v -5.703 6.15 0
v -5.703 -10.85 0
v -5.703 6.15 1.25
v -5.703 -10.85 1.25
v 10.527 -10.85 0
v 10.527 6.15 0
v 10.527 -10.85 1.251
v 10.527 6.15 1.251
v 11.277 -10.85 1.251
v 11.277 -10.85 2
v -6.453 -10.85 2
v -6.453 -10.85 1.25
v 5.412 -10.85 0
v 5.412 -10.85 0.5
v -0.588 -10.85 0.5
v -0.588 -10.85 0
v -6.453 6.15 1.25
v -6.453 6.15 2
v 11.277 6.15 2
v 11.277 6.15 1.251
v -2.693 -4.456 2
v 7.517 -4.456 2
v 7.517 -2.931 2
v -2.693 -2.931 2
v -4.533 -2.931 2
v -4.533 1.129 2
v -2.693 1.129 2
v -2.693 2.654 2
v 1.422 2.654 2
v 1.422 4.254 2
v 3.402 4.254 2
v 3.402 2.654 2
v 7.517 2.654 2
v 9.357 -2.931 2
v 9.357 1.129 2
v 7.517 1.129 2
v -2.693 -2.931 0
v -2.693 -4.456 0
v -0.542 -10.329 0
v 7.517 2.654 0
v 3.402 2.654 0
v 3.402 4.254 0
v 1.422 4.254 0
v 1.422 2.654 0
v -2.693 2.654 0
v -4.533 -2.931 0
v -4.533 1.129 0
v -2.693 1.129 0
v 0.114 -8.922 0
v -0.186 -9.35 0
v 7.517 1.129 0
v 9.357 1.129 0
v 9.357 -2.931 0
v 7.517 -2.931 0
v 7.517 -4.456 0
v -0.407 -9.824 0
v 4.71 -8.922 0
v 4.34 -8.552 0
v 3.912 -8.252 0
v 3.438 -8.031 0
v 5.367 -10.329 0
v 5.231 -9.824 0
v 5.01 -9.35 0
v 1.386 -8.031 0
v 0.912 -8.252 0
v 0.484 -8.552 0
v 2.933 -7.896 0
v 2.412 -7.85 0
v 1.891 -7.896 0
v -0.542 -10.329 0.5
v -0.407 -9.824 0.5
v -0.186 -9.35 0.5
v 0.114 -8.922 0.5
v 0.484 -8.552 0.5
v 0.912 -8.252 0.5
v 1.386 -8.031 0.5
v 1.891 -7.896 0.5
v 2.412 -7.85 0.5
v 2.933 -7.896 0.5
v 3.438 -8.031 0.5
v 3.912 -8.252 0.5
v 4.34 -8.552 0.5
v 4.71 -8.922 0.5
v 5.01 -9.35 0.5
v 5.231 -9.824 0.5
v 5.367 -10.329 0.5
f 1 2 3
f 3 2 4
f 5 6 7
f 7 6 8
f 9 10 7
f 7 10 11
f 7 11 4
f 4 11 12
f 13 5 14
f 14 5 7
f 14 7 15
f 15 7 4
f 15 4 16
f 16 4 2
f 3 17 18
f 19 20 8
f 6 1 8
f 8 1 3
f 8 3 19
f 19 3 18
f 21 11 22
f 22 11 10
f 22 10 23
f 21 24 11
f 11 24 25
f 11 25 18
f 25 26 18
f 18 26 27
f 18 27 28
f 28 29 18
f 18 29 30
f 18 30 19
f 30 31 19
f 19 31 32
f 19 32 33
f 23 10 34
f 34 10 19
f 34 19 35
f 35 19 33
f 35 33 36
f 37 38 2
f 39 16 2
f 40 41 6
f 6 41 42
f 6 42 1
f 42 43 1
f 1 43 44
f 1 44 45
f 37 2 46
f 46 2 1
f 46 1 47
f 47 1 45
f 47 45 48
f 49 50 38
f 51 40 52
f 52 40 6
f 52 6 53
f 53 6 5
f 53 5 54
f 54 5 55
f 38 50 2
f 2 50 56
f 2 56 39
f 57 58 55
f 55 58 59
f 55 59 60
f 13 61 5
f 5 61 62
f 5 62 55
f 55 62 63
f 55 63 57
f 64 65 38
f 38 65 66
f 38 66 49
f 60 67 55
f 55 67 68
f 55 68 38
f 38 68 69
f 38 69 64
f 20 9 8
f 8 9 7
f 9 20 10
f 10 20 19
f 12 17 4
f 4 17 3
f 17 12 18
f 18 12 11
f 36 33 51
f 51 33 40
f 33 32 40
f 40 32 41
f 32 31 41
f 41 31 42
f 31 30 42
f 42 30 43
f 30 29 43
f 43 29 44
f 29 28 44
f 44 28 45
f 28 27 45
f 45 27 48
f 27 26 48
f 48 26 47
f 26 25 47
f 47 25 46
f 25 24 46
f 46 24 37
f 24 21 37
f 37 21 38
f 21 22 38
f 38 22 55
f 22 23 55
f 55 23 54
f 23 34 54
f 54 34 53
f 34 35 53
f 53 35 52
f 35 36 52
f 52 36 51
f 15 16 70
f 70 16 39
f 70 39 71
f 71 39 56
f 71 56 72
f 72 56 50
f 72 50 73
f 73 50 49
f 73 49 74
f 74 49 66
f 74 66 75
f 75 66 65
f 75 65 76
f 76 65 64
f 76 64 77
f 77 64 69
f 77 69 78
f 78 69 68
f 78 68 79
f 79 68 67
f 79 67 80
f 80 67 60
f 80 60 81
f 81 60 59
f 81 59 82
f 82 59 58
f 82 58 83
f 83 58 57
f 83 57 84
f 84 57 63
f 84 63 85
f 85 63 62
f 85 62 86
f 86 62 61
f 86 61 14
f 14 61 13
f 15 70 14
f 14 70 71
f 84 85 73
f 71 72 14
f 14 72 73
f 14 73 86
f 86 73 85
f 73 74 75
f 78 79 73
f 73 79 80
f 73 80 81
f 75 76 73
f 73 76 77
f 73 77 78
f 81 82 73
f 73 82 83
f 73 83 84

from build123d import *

# Parameters (mm, degrees)
SKETCH1_W           = 16.23
SKETCH1_H           = 17
BOSS_EXTRUDE1_DEPTH = 2
SKETCH2_W           = 0.749
SKETCH2_H           = 17
BOSS_EXTRUDE2_DEPTH = 0.75
SKETCH3_W           = 0.75
SKETCH3_H           = 17
BOSS_EXTRUDE4_DEPTH = 0.75
CUT_EXTRUDE1_DEPTH  = 16.776621323
CUT_EXTRUDE3_DEPTH  = 0.5


with BuildPart() as part:
    # Sketch1 → Boss-Extrude1 (new body)
    with BuildSketch(Plane.XY):
        with Locations((2.412127937, -2.350261097)):
            Rectangle(SKETCH1_W, SKETCH1_H)
    extrude(amount=BOSS_EXTRUDE1_DEPTH)

    # Sketch2 → Boss-Extrude2 (add)
    with BuildSketch(Plane(origin=(10.527127937, 0, 0), x_dir=(0, 0, -1), z_dir=(1, 0, 0))):
        with Locations((-1.6255, -2.350261097)):
            Rectangle(SKETCH2_W, SKETCH2_H)
    extrude(amount=BOSS_EXTRUDE2_DEPTH)

    # Sketch3 → Boss-Extrude4 (add)
    with BuildSketch(Plane.ZY.offset(5.702872063)):
        with Locations((1.625, -2.350261097)):
            Rectangle(SKETCH3_W, SKETCH3_H)
    extrude(amount=BOSS_EXTRUDE4_DEPTH)

    # Sketch4 → Cut-Extrude1 (cut, through all)
    with BuildSketch(Plane(origin=(0, 0, 0), x_dir=(-1, 0, 0), z_dir=(0, 0, -1))):
        Polygon((-7.517127937, 2.653975471), (-3.402127937, 2.653975471), (-3.402127937, 4.253975471), (-1.422127937, 4.253975471), (-1.422127937, 2.653975471), (2.692872063, 2.653975471), (2.692872063, 1.128975471), (4.532872063, 1.128975471), (4.532872063, -2.931024529), (2.692872063, -2.931024529), (2.692872063, -4.456024529), (-7.517127937, -4.456024529), (-7.517127937, -2.931024529), (-9.357127937, -2.931024529), (-9.357127937, 1.128975471), (-7.517127937, 1.128975471), align=None)
    extrude(amount=-CUT_EXTRUDE1_DEPTH, mode=Mode.SUBTRACT)

    # Sketch6 → Cut-Extrude3 (cut)
    with BuildSketch(Plane(origin=(0, 0, 0), x_dir=(-1, 0, 0), z_dir=(0, 0, -1))):
        with BuildLine():
            Line((-5.412127937, -10.850261097), (0.587872063, -10.850261097))
            ThreePointArc((0.587872063, -10.850261097), (-2.412127937, -7.850261097), (-5.412127937, -10.850261097))
        make_face()
    extrude(amount=-CUT_EXTRUDE3_DEPTH, mode=Mode.SUBTRACT)


solid = part.part
